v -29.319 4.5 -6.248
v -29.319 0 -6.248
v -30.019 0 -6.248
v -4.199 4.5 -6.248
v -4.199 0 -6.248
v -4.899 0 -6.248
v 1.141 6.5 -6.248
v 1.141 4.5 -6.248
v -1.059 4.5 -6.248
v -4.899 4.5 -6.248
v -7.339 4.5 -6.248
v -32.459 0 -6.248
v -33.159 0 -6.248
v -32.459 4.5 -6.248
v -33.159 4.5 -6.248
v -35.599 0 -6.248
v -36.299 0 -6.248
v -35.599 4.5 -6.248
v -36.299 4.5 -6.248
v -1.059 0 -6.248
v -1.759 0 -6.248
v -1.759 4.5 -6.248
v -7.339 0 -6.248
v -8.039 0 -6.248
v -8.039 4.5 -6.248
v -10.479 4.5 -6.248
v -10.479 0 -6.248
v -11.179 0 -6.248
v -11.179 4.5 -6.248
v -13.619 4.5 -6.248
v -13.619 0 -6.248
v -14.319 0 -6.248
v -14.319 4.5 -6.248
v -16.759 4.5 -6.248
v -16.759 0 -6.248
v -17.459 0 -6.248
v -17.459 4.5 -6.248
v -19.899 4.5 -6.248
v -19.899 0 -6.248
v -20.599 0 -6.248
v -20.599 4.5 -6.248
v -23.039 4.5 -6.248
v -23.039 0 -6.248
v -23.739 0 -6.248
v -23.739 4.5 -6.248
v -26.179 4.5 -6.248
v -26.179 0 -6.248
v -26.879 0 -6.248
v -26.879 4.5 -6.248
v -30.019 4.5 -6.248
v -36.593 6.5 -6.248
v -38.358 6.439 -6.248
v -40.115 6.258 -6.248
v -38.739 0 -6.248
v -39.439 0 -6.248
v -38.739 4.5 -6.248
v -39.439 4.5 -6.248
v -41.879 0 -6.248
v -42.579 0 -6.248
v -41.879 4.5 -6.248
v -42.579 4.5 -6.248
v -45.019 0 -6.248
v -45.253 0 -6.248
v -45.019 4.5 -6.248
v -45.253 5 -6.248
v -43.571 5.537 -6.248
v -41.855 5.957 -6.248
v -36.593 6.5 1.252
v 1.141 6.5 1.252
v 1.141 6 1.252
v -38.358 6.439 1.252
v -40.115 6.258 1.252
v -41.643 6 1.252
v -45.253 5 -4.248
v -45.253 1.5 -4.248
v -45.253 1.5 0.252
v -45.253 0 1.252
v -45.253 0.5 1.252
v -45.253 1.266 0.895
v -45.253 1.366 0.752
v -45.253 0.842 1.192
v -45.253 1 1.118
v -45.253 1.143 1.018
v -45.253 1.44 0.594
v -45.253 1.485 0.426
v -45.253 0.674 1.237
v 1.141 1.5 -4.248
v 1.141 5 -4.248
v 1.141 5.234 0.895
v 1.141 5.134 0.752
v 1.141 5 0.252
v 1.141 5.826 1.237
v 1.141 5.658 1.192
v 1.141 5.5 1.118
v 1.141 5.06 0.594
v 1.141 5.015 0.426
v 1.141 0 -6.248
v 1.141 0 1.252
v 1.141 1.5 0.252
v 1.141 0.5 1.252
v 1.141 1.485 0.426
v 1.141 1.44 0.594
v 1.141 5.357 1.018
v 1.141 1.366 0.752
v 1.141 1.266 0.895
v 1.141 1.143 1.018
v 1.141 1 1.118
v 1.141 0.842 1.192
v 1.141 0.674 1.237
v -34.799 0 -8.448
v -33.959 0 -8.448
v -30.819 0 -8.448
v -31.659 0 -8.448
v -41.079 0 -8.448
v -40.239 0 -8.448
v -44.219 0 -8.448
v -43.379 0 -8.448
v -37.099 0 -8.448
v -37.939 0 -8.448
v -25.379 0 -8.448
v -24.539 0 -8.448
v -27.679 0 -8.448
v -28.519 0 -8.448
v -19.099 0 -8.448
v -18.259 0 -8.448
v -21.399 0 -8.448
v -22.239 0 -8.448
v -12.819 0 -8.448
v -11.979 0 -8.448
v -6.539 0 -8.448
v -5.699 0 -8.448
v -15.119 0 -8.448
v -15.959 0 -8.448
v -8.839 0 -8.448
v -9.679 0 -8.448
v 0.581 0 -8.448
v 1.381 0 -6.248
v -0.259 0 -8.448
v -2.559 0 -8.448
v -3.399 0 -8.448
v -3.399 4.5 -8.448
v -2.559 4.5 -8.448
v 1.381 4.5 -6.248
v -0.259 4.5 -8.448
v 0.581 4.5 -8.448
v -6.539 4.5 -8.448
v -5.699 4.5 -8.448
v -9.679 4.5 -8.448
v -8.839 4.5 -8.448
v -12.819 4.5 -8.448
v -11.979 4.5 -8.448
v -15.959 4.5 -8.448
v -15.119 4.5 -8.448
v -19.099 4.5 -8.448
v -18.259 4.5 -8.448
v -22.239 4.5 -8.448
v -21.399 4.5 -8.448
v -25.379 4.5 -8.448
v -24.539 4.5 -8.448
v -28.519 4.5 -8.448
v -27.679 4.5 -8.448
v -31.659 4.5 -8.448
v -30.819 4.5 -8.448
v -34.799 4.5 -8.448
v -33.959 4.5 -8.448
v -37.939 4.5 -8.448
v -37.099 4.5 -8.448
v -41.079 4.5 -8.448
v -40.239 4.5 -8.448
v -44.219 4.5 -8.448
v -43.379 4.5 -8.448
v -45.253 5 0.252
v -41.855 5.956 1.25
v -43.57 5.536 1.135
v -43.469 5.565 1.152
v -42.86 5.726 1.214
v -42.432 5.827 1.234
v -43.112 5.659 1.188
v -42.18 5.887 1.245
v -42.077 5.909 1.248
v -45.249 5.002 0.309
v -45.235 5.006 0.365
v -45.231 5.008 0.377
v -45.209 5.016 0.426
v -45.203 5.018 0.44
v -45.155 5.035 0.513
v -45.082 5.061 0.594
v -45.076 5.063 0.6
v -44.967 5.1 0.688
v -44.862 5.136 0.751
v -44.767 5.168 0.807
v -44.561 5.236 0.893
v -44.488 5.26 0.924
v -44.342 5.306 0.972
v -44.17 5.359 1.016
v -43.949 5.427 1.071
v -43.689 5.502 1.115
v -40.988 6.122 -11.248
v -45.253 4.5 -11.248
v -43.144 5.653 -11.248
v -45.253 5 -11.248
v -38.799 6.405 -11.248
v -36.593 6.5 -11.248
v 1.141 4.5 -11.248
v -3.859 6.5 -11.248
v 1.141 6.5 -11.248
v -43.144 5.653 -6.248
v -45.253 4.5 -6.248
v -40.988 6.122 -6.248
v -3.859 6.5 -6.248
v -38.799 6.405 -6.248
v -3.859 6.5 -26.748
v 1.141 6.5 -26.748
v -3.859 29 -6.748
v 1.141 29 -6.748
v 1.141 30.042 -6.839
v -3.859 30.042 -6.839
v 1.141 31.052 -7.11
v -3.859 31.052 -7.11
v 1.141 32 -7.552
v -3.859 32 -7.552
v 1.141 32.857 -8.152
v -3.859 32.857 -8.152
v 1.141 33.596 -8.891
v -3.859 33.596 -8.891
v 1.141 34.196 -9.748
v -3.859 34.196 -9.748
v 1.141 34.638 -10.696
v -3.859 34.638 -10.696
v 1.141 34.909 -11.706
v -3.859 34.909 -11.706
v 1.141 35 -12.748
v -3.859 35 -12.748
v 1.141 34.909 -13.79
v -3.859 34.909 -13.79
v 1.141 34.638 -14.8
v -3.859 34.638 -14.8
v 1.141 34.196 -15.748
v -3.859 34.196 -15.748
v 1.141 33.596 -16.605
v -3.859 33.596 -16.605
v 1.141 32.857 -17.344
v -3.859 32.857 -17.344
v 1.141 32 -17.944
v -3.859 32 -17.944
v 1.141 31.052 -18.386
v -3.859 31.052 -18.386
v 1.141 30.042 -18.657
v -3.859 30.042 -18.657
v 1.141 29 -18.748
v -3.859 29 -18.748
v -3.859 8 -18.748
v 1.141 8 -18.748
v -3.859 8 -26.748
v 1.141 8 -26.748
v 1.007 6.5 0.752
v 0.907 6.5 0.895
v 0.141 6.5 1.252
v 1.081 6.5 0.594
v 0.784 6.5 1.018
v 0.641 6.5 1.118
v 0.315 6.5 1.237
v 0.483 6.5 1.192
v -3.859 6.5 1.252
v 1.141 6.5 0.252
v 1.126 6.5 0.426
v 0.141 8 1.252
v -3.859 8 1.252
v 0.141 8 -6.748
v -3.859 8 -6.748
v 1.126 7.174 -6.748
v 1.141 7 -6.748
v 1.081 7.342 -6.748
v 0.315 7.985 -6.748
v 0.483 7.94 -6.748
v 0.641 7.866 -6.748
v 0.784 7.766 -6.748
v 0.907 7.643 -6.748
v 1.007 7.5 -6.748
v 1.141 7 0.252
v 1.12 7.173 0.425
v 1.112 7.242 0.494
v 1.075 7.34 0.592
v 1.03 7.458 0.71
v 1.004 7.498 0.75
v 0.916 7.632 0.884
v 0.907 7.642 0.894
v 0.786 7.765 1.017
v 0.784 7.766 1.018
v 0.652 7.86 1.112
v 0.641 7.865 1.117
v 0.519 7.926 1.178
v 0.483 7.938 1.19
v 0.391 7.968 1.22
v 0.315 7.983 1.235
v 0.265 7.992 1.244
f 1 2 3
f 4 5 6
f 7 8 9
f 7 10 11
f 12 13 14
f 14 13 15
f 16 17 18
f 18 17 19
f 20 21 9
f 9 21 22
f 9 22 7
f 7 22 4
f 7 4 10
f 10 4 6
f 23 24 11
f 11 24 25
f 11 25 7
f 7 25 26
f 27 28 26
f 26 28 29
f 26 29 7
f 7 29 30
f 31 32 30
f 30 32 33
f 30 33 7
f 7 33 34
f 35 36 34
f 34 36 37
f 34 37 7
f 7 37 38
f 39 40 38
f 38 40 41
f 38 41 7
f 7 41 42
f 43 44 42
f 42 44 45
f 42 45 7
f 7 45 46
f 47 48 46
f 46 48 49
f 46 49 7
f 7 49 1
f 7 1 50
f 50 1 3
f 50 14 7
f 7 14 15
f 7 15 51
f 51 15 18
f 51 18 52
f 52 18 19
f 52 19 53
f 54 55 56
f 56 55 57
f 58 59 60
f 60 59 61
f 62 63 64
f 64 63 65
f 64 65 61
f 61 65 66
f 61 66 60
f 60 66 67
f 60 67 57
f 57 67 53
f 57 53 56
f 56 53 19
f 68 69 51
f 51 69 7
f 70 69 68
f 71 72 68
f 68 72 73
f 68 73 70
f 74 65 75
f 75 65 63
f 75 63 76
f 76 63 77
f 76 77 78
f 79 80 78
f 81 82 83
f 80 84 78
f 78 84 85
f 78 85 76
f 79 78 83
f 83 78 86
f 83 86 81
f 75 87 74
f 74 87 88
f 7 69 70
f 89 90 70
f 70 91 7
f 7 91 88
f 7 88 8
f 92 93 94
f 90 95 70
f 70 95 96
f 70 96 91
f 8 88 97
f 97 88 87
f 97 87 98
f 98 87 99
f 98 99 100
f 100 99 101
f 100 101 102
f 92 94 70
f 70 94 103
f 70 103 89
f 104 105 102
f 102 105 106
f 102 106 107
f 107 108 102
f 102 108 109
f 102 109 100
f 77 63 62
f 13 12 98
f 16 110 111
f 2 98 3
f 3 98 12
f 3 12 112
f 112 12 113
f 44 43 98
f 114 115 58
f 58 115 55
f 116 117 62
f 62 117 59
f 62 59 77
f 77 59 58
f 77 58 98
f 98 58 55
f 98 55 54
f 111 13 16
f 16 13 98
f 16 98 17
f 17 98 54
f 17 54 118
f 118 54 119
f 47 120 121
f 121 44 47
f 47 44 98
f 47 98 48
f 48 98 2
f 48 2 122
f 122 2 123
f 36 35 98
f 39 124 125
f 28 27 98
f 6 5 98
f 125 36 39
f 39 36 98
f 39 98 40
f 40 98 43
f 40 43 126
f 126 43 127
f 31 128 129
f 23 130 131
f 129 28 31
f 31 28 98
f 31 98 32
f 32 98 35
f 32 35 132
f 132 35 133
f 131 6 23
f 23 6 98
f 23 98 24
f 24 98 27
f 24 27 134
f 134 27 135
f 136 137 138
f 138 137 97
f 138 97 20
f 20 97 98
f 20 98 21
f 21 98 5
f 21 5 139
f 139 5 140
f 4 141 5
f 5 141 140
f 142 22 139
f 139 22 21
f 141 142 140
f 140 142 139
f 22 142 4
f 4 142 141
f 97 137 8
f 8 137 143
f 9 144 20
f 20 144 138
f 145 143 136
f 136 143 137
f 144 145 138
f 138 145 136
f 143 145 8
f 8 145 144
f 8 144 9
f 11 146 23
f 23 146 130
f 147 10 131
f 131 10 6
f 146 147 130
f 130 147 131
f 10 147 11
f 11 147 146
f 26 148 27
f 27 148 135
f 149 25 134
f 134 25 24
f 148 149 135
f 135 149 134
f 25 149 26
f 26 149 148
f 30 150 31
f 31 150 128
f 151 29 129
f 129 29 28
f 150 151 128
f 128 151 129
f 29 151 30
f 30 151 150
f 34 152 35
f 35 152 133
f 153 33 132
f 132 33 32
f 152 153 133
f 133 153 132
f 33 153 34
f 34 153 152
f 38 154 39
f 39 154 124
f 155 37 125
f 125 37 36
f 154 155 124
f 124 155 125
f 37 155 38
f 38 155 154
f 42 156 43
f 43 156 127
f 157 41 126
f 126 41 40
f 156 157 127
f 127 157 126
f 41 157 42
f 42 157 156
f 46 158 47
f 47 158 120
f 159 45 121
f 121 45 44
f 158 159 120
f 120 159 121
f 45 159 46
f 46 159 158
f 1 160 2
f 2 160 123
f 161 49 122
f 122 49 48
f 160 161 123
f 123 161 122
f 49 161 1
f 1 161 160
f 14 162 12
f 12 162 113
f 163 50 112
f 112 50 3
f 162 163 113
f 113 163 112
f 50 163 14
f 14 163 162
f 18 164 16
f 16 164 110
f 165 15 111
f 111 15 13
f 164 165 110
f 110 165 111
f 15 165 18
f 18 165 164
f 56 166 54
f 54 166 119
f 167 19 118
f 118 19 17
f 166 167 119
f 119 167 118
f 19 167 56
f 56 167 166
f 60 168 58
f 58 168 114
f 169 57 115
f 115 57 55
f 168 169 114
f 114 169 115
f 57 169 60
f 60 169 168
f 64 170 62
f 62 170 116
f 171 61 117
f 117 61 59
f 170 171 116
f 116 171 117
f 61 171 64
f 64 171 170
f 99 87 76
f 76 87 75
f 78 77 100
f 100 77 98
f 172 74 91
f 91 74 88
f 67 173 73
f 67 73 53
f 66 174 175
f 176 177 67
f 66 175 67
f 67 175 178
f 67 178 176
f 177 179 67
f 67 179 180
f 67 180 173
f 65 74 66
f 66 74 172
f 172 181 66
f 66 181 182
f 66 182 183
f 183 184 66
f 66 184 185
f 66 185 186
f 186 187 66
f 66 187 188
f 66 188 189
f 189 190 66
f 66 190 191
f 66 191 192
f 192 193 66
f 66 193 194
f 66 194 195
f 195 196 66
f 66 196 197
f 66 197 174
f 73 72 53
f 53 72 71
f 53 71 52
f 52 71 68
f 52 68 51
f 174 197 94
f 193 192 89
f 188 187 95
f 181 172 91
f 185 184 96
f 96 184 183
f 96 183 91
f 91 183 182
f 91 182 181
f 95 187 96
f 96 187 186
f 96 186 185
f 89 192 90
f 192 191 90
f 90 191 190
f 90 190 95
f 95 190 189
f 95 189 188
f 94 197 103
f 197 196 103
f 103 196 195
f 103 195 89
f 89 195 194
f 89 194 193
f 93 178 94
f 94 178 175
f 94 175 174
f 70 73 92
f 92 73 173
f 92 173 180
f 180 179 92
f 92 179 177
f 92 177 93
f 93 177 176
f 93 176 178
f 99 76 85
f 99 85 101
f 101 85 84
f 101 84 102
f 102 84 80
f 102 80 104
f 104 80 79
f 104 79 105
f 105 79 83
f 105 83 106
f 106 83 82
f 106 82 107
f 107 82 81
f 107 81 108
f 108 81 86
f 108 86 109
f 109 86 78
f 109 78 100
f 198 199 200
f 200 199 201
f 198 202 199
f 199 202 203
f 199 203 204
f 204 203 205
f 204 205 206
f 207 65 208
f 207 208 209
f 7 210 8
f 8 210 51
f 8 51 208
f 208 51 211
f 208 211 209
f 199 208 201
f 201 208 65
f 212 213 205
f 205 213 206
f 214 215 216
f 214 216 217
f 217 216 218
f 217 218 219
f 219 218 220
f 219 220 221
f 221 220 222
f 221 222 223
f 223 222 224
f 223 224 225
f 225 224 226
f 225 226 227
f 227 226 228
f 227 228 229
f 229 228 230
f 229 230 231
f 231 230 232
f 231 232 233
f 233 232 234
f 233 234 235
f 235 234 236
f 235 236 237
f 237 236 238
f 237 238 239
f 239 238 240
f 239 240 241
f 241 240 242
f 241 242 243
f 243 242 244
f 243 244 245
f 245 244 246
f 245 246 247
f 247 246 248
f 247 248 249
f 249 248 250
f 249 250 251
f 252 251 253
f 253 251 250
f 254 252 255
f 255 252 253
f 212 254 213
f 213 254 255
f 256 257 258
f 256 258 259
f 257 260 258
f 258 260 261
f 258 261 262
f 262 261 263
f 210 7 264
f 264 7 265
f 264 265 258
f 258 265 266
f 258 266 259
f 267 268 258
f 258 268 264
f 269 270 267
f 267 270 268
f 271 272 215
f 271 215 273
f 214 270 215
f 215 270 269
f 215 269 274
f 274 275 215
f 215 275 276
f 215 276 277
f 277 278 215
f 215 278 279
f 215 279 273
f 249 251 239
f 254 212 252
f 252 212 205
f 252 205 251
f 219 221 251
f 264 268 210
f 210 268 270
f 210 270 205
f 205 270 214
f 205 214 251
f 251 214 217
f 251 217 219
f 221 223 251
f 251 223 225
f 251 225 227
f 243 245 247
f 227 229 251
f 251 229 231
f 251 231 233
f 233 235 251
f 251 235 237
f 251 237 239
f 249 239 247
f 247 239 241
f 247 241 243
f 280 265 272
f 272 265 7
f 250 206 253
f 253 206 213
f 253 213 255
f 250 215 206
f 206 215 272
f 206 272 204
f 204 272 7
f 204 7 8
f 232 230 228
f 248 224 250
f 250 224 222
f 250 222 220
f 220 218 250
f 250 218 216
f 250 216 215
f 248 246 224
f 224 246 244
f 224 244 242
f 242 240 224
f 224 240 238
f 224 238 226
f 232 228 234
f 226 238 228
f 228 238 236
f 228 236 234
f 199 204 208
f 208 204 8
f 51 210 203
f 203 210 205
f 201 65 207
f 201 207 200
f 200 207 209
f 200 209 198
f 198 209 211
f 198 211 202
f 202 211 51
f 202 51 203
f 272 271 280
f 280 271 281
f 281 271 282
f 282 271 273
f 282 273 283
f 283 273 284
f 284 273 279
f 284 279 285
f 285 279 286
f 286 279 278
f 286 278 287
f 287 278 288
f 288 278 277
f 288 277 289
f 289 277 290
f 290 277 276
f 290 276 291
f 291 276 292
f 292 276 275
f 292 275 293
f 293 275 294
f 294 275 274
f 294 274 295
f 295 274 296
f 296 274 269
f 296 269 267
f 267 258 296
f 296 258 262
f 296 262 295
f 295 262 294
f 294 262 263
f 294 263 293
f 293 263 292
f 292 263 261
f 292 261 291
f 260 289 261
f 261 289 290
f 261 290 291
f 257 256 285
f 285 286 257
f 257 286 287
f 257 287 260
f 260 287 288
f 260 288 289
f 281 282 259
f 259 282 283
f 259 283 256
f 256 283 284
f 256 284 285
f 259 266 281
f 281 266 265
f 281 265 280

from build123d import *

# Parameters (mm, degrees)
SKETCH1_W           = 65
SKETCH1_H           = 2
BOSS_EXTRUDE1_DEPTH = 6.5
BOSS_EXTRUDE2_DEPTH = 4.5
SKETCH5_W           = 67
SKETCH5_H           = 1.5
BOSS_EXTRUDE6_DEPTH = 5.5
BOSS_EXTRUDE7_DEPTH = 5
SKETCH7_W           = 65
SKETCH7_H           = 2
BOSS_EXTRUDE8_DEPTH = 5
SKETCH8_W           = 31.428674942
SKETCH8_H           = 29.09091251
CUT_EXTRUDE1_DEPTH  = 80.232704839
CUT_EXTRUDE2_DEPTH  = 64.693313851
FILLET5_R           = 1
FILLET7_R           = 1


with BuildPart() as part:
    # Sketch1 → Boss-Extrude1 (new body)
    with BuildSketch(Plane(origin=(0, 0, 0), x_dir=(1, 0, 0), z_dir=(0, 1, 0))):
        with Locations((-31.358656154, 5.24806396)):
            Rectangle(SKETCH1_W, SKETCH1_H)
    extrude(amount=BOSS_EXTRUDE1_DEPTH)

    # Sketch2 → Boss-Extrude2 (add)
    with BuildSketch(Plane(origin=(0, 0, 0), x_dir=(1, 0, 0), z_dir=(0, 1, 0))):
        Polygon((-63.058656154, 8.44806396), (-63.858656154, 6.24806396), (-61.418656154, 6.24806396), (-62.218656154, 8.44806396), align=None)
        Polygon((-59.918656154, 8.44806396), (-60.718656154, 6.24806396), (-58.278656154, 6.24806396), (-59.078656154, 8.44806396), align=None)
        Polygon((-56.778656154, 8.44806396), (-57.578656154, 6.24806396), (-55.138656154, 6.24806396), (-55.938656154, 8.44806396), align=None)
        Polygon((-53.638656154, 8.44806396), (-54.438656154, 6.24806396), (-51.998656154, 6.24806396), (-52.798656154, 8.44806396), align=None)
        Polygon((-50.498656154, 8.44806396), (-51.298656154, 6.24806396), (-48.858656154, 6.24806396), (-49.658656154, 8.44806396), align=None)
        Polygon((-47.358656154, 8.44806396), (-48.158656154, 6.24806396), (-45.718656154, 6.24806396), (-46.518656154, 8.44806396), align=None)
        Polygon((-44.218656154, 8.44806396), (-45.018656154, 6.24806396), (-42.578656154, 6.24806396), (-43.378656154, 8.44806396), align=None)
        Polygon((-41.078656154, 8.44806396), (-41.878656154, 6.24806396), (-39.438656154, 6.24806396), (-40.238656154, 8.44806396), align=None)
        Polygon((-37.938656154, 8.44806396), (-38.738656154, 6.24806396), (-36.298656154, 6.24806396), (-37.098656154, 8.44806396), align=None)
        Polygon((-34.798656154, 8.44806396), (-35.598656154, 6.24806396), (-33.158656154, 6.24806396), (-33.958656154, 8.44806396), align=None)
        Polygon((-31.658656154, 8.44806396), (-32.458656154, 6.24806396), (-30.018656154, 6.24806396), (-30.818656154, 8.44806396), align=None)
        Polygon((-29.318656154, 6.24806396), (-26.878656154, 6.24806396), (-27.678656154, 8.44806396), (-28.518656154, 8.44806396), align=None)
        Polygon((-26.178656154, 6.24806396), (-23.738656154, 6.24806396), (-24.538656154, 8.44806396), (-25.378656154, 8.44806396), align=None)
        Polygon((-23.038656154, 6.24806396), (-20.598656154, 6.24806396), (-21.398656154, 8.44806396), (-22.238656154, 8.44806396), align=None)
        Polygon((-19.898656154, 6.24806396), (-17.458656154, 6.24806396), (-18.258656154, 8.44806396), (-19.098656154, 8.44806396), align=None)
        Polygon((-16.758656154, 6.24806396), (-14.318656154, 6.24806396), (-15.118656154, 8.44806396), (-15.958656154, 8.44806396), align=None)
        Polygon((-13.618656154, 6.24806396), (-11.178656154, 6.24806396), (-11.978656154, 8.44806396), (-12.818656154, 8.44806396), align=None)
        Polygon((-10.478656154, 6.24806396), (-8.038656154, 6.24806396), (-8.838656154, 8.44806396), (-9.678656154, 8.44806396), align=None)
        Polygon((-7.338656154, 6.24806396), (-4.898656154, 6.24806396), (-5.698656154, 8.44806396), (-6.538656154, 8.44806396), align=None)
        Polygon((-4.198656154, 6.24806396), (-1.758656154, 6.24806396), (-2.558656154, 8.44806396), (-3.398656154, 8.44806396), align=None)
        Polygon((-3.398656154, 8.44806396), (-4.198656154, 6.24806396), (-1.758656154, 6.24806396), (-2.558656154, 8.44806396), align=None)
        Polygon((-0.258656154, 8.44806396), (-1.058656154, 6.24806396), (1.141343846, 6.24806396), (1.381343846, 6.24806396), (0.581343846, 8.44806396), align=None)
        Polygon((-6.538656154, 8.44806396), (-7.338656154, 6.24806396), (-4.898656154, 6.24806396), (-5.698656154, 8.44806396), align=None)
        Polygon((-9.678656154, 8.44806396), (-10.478656154, 6.24806396), (-8.038656154, 6.24806396), (-8.838656154, 8.44806396), align=None)
        Polygon((-12.818656154, 8.44806396), (-13.618656154, 6.24806396), (-11.178656154, 6.24806396), (-11.978656154, 8.44806396), align=None)
        Polygon((-15.958656154, 8.44806396), (-16.758656154, 6.24806396), (-14.318656154, 6.24806396), (-15.118656154, 8.44806396), align=None)
        Polygon((-19.098656154, 8.44806396), (-19.898656154, 6.24806396), (-17.458656154, 6.24806396), (-18.258656154, 8.44806396), align=None)
        Polygon((-22.238656154, 8.44806396), (-23.038656154, 6.24806396), (-20.598656154, 6.24806396), (-21.398656154, 8.44806396), align=None)
        Polygon((-25.378656154, 8.44806396), (-26.178656154, 6.24806396), (-23.738656154, 6.24806396), (-24.538656154, 8.44806396), align=None)
        Polygon((-28.518656154, 8.44806396), (-29.318656154, 6.24806396), (-26.878656154, 6.24806396), (-27.678656154, 8.44806396), align=None)
    extrude(amount=BOSS_EXTRUDE2_DEPTH)

    # Sketch5 → Boss-Extrude6 (add)
    with BuildSketch(Plane.XY.offset(-4.24806396)):
        with Locations((-32.358656154, 0.75)):
            Rectangle(SKETCH5_W, SKETCH5_H)
        with Locations((-32.358656154, 5.75)):
            Rectangle(SKETCH5_W, SKETCH5_H)
    extrude(amount=BOSS_EXTRUDE6_DEPTH)


with BuildPart() as body_2:
    # Sketch6 → Boss-Extrude7 (new body)
    with BuildSketch(Plane(origin=(1.141343846, 0, 0), x_dir=(0, 0, -1), z_dir=(1, 0, 0))):
        with BuildLine():
            Line((-1.25193604, 6.5), (6.24806396, 6.5))
            Line((6.24806396, 6.5), (26.74806396, 6.5))
            Line((26.74806396, 6.5), (26.74806396, 8))
            Line((26.74806396, 8), (18.74806396, 8))
            Line((18.74806396, 8), (18.74806396, 29))
            ThreePointArc((18.74806396, 29), (12.74806396, 35), (6.74806396, 29))
            Line((6.74806396, 29), (6.74806396, 8))
            Line((6.74806396, 8), (-1.25193604, 8))
            Line((-1.25193604, 8), (-1.25193604, 6.5))
        make_face()
    extrude(amount=-BOSS_EXTRUDE7_DEPTH)

    # Sketch7 → Boss-Extrude8 (add)
    with BuildSketch(Plane(origin=(0, 0, -6.24806396), x_dir=(-1, 0, 0), z_dir=(0, 0, -1))):
        with Locations((31.358656154, 5.5)):
            Rectangle(SKETCH7_W, SKETCH7_H)
    extrude(amount=BOSS_EXTRUDE8_DEPTH)


with BuildPart() as cut_extrude1_tool:
    # Sketch8 → Cut-Extrude1 (new, through all)
    with BuildSketch(Plane(origin=(0, 0, 0), x_dir=(-1, 0, 0), z_dir=(0, -1, 0))):
        with Locations((60.967384102, 5.403519831)):
            Rectangle(SKETCH8_W, SKETCH8_H)
    extrude(amount=-CUT_EXTRUDE1_DEPTH)


with BuildPart() as part_1:
    add(part.part)

    # Cut-Extrude1: cut by cut_extrude1_tool
    add(cut_extrude1_tool.part, mode=Mode.SUBTRACT)


with BuildPart() as body_2_1:
    add(body_2.part)

    # Cut-Extrude1: cut by cut_extrude1_tool
    add(cut_extrude1_tool.part, mode=Mode.SUBTRACT)


with BuildPart() as cut_extrude2_tool:
    # Sketch10 → Cut-Extrude2 (new, through all)
    with BuildSketch(Plane.XY.offset(1.25193604)):
        with BuildLine():
            Line((-45.253046631, 6.5), (-45.253046631, 5))
            ThreePointArc((-45.253046631, 5), (-40.987678702, 6.122228556), (-36.593358591, 6.5))
            Line((-36.593358591, 6.5), (-45.253046631, 6.5))
        make_face()
    extrude(amount=-CUT_EXTRUDE2_DEPTH)


with BuildPart() as part_2:
    add(part_1.part)

    # Cut-Extrude2: cut by cut_extrude2_tool
    add(cut_extrude2_tool.part, mode=Mode.SUBTRACT)

    # Fillet7
    fillet7_edges = [part_2.edges().sort_by_distance(p)[0] for p in [
        (-22.055851393, 5, 1.25193604),
        (-22.055851393, 1.5, 1.25193604),
    ]]
    fillet(fillet7_edges, radius=FILLET7_R)


with BuildPart() as body_2_2:
    add(body_2_1.part)

    # Cut-Extrude2: cut by cut_extrude2_tool
    add(cut_extrude2_tool.part, mode=Mode.SUBTRACT)

    # Fillet5
    fillet5_edges = [body_2_2.edges().sort_by_distance(p)[0] for p in [
        (1.141343846, 7.25, 1.25193604),
        (1.141343846, 8, -2.74806396),
    ]]
    fillet(fillet5_edges, radius=FILLET5_R)


solid = Compound([part_2.part, body_2_2.part])
